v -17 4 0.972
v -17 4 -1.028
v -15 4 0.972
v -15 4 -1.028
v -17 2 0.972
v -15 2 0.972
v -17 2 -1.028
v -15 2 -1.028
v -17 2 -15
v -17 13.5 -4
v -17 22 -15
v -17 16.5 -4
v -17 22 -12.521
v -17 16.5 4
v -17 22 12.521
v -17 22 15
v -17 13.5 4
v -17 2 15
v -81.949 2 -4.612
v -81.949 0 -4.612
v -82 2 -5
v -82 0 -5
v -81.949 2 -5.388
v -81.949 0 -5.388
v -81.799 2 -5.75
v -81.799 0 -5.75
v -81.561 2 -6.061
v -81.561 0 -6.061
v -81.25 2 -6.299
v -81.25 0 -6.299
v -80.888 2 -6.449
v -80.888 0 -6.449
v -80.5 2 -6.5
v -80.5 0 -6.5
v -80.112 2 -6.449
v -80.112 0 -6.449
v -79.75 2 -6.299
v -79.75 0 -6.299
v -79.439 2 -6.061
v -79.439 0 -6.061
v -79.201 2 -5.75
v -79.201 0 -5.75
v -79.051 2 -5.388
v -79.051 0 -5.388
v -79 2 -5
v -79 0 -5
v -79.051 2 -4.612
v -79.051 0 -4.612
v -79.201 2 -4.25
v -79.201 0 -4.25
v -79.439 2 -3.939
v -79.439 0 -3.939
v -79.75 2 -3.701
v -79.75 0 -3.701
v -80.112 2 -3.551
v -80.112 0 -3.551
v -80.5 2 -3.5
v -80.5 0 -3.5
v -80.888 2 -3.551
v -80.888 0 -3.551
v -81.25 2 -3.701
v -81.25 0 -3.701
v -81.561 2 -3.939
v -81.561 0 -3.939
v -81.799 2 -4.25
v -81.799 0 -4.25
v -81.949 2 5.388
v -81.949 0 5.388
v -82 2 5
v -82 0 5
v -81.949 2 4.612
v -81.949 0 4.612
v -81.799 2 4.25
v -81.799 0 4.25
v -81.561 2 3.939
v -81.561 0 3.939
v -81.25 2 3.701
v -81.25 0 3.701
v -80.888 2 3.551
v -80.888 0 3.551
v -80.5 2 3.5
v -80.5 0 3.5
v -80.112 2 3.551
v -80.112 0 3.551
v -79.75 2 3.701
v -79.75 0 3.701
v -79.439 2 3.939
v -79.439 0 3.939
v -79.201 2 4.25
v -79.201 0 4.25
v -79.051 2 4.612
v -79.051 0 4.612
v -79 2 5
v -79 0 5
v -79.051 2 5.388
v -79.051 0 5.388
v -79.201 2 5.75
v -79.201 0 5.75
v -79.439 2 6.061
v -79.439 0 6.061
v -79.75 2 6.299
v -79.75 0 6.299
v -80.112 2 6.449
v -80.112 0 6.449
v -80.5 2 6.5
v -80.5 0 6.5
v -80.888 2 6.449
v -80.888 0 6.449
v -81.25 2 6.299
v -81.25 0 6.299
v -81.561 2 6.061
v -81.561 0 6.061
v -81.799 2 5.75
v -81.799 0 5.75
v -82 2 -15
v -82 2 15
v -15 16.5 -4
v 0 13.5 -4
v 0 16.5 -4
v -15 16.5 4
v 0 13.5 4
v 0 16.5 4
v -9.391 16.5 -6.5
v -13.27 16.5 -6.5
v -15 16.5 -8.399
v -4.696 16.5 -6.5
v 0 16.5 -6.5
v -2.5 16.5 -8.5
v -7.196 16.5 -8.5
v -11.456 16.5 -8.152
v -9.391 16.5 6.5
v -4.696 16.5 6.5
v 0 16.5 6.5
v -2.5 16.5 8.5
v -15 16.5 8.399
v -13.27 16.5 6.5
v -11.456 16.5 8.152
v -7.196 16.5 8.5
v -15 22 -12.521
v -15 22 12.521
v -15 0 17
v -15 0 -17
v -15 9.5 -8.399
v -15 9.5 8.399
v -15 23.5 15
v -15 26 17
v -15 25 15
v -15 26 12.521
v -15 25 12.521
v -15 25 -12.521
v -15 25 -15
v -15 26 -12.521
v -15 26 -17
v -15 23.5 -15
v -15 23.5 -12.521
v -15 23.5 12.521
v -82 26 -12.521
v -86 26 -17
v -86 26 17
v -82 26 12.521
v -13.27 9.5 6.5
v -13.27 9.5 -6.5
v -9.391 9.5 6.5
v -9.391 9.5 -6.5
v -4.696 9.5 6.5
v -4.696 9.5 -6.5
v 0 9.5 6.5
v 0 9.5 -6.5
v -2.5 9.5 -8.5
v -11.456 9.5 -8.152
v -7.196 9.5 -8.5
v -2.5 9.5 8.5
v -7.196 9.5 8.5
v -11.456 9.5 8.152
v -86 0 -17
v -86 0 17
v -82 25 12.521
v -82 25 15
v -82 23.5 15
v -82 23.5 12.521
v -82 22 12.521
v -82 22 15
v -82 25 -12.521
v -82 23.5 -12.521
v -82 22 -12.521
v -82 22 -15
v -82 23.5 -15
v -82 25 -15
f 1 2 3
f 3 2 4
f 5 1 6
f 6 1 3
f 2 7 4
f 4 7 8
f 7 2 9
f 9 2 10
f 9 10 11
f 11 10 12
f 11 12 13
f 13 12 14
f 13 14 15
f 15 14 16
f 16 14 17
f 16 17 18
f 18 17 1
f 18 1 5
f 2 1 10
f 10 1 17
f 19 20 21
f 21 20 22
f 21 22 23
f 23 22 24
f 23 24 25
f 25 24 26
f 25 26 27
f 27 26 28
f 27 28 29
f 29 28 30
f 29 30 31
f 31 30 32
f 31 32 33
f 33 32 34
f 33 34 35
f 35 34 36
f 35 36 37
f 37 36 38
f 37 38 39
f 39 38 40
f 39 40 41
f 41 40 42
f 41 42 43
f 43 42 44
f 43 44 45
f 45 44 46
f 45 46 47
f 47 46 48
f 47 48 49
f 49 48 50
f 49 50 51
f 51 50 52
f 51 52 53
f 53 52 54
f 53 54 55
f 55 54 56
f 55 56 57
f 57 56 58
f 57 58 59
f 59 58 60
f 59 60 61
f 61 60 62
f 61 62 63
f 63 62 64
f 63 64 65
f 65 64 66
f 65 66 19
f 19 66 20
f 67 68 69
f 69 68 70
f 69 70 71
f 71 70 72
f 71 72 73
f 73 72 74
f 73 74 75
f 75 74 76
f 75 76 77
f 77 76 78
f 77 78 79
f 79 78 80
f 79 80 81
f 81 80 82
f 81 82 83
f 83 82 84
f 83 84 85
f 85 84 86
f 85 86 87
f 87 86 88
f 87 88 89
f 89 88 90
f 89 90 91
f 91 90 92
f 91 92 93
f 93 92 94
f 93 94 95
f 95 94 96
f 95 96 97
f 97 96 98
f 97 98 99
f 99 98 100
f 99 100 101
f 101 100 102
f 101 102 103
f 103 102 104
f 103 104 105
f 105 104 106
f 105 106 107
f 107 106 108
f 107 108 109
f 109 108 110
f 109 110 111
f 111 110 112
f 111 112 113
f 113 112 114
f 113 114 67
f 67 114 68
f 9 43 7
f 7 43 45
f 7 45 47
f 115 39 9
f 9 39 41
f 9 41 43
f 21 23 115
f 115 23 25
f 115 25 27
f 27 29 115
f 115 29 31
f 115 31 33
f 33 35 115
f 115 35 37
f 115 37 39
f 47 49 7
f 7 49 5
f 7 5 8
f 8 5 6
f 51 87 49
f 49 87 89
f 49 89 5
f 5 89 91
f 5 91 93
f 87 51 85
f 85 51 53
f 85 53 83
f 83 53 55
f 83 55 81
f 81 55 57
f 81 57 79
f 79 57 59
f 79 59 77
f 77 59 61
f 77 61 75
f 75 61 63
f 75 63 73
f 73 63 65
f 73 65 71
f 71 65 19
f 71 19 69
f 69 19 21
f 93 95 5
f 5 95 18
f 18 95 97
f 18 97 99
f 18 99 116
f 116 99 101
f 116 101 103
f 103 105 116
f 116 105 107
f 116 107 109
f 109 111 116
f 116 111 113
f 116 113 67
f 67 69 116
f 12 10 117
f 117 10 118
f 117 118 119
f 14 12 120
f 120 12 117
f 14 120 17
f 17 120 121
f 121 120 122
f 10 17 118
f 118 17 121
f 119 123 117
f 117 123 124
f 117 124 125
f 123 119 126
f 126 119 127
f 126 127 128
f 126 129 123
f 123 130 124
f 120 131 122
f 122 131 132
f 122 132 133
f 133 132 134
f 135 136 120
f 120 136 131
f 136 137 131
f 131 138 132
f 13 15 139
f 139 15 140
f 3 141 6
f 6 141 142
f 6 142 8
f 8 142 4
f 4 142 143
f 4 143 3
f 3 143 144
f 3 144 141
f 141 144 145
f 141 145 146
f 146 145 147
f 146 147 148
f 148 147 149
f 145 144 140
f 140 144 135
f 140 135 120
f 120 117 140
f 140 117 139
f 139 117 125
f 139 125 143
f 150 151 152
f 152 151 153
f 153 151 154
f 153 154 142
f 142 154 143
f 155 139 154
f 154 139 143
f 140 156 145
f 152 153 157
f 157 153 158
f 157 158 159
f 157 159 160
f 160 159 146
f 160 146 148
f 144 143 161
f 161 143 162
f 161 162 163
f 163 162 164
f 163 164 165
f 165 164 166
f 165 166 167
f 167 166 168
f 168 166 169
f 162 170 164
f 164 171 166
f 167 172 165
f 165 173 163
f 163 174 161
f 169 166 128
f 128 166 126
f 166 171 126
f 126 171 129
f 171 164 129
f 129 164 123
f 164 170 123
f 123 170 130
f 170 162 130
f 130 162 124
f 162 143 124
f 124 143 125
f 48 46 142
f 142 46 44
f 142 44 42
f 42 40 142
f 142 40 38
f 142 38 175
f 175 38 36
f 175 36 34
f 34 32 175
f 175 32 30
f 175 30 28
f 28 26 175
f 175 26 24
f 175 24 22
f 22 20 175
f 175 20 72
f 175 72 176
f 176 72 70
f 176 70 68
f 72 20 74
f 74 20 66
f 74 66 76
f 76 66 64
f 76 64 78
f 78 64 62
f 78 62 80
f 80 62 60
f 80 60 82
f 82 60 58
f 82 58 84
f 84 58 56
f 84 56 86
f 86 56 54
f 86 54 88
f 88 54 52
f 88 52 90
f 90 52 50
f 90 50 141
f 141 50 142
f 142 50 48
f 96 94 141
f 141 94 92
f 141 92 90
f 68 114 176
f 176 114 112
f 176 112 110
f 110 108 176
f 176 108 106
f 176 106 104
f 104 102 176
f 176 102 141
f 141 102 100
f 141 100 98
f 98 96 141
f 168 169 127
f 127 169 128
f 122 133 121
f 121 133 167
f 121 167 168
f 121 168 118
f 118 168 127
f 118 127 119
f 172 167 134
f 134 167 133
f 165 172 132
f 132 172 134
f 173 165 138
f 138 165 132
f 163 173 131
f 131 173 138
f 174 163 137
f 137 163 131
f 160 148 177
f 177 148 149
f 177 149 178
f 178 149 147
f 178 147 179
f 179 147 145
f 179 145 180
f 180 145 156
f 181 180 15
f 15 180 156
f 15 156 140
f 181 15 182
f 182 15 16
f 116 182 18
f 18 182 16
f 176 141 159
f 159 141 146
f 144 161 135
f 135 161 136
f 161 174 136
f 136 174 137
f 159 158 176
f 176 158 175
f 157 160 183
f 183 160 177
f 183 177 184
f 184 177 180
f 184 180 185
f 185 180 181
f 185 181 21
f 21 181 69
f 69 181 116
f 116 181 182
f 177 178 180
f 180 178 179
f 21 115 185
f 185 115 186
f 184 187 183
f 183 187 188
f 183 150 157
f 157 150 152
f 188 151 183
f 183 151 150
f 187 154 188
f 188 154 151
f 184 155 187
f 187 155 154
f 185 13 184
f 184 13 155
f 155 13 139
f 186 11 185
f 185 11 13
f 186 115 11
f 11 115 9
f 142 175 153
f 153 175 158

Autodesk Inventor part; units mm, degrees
ref_plane "YZ Plane" through (0, 0, 0) normal (1, 0, 0) x (0, 1, 0)
ref_plane "XZ Plane" through (0, 0, 0) normal (0, 1, 0) x (-1, 0, 0)
sketch "草图1" plane through (0, 0, 0) normal (0, 1, 0) x (-1, 0, 0)
  line L0 (0, 0) -> (0, -6.5)
  line L1 (0, 0) -> (15, 0)
  line L2 (0, 0) -> (0, -6.5)
  line L3 (0, -6.5) -> (2.5, -8.5)
  line L4 (2.5, -8.5) -> (4.6956, -6.5)
  line L5 (4.6956, -6.5) -> (7.1956, -8.5)
  line L6 (7.1956, -8.5) -> (9.3913, -6.5)
  line L7 (9.3913, -6.5) -> (11.4564, -8.1521)
  line L8 (11.4564, -8.1521) -> (13.2702, -6.5)
  line L9 (13.2702, -6.5) -> (15, -8.399)
  line L10 (15, 0) -> (82, 0)
  line L11 (82, 0) -> (82, -17)
  line L12 (82, -17) -> (15, -17)
  line L13 (15, -17) -> (15, -8.399)
  line L14 (15, -10) -> (15, -8.399)
  line L15 (15, -10) -> (15, -8.399)
  dimension "d1" = 6.5
  dimension "d2" = 15
  dimension "d3" = 99.01
  dimension "d4" = 67
  dimension "d6" = 17
extrude "拉伸1" add sketch "草图1" along normal blind 26
sketch "草图2" plane through (-82, 0, -17) normal (-1, 0, 0) x (0, 0, 1)
  line L0 (4.4791, 22) -> (2, 22)
  line L1 (2, 22) -> (2, 2)
  line L2 (2, 2) -> (17, 2)
  line L3 (4.4791, 23.5) -> (2, 23.5)
  line L4 (2, 23.5) -> (2, 25)
  line L5 (2, 25) -> (4.4791, 25)
  line L6 (0, 0) -> (17, 0) projected
  line L7 (17, 0) -> (17, 26) projected
  line L8 (0, 26) -> (17, 26) projected
  line L9 (0, 0) -> (0, 26) projected
  line L10 (4.4791, 25) -> (4.4791, 26)
  line L11 (4.4791, 23.5) -> (4.4791, 22)
  line L12 (17, 0) -> (17, 26) projected
  line L13 (4.4791, 26) -> (17, 26)
  line L14 (17, 26) -> (17, 2)
  dimension "d9" = 20
  dimension "d11" = 1.5
  dimension "d12" = 1.5
  dimension "d13" = 15
  dimension "d14" = 2
extrude "拉伸2" cut sketch "草图2" against normal blind 65 contours L11 L3 L4 L5 L10 L8 L7 L2 L1 L0
sketch "草图3" plane through (-82, 0, -17) normal (-1, 0, 0) x (0, 0, 1)
  line L0 (0, 0) -> (0, 26) projected
  line L1 (0, 26) -> (17, 26)
  line L2 (17, 26) -> (17, 0)
  line L3 (17, 0) -> (0, 0)
  line L4 (0, 0) -> (0, 26)
extrude "拉伸3" add sketch "草图3" along normal blind 4
mirror "镜像1" about plane through (-82, 0, 0) normal (0, 0, 1) of "拉伸1", "拉伸2", "拉伸3"
sketch "草图4" plane through (0, 26, 0) normal (0, 1, 0) x (1, 0, 0)
  line L0 (-15, -17) -> (-86, -17) projected
  line L1 (-15, -8.399) -> (-15, -17) projected
  line L2 (-13.2702, -6.5) -> (-15, -8.399) projected
  line L3 (-11.4564, -8.1521) -> (-13.2702, -6.5) projected
  line L4 (-9.3913, -6.5) -> (-11.4564, -8.1521) projected
  line L5 (-7.1956, -8.5) -> (-9.3913, -6.5) projected
  line L6 (-4.6956, -6.5) -> (-7.1956, -8.5) projected
  line L7 (-2.5, -8.5) -> (-4.6956, -6.5) projected
  line L8 (0, -6.5) -> (-2.5, -8.5) projected
  line L9 (0, 6.5) -> (0, -6.5) projected
  line L10 (0, 6.5) -> (-2.5, 8.5) projected
  line L11 (-2.5, 8.5) -> (-4.6956, 6.5) projected
  line L12 (-4.6956, 6.5) -> (-7.1956, 8.5) projected
  line L13 (-7.1956, 8.5) -> (-9.3913, 6.5) projected
  line L14 (-9.3913, 6.5) -> (-11.4564, 8.1521) projected
  line L15 (-11.4564, 8.1521) -> (-13.2702, 6.5) projected
  line L16 (-13.2702, 6.5) -> (-15, 8.399) projected
  line L17 (-15, 8.399) -> (-15, 17) projected
  line L18 (-15, 17) -> (-86, 17) projected
  line L19 (-86, 17) -> (-86, -17) projected
  line L20 (-82, 12.5209) -> (-82, -12.5209) projected
  line L21 (-82, 12.5209) -> (-17, 12.5209) projected
  line L22 (-17, 12.5209) -> (-17, -12.5209) projected
  line L23 (-17, -12.5209) -> (-82, -12.5209) projected
  line L24 (-15, -8.399) -> (-15, 8.399)
  point P0 (0, 0)
extrude "拉伸4" cut sketch "草图4" against normal blind 9.5 contours L24 L16 L15 L14 L13 L12 L11 L10 L9 L8 L7 L6 L5 L4 L3 L2
ref_plane "工作平面1" through (0, 13, 0) normal (0, 1, 0) x (1, 0, 0)
mirror "镜像2" about plane through (0, 13, 0) normal (0, 1, 0) of "拉伸4"
sketch "草图5" plane through (-15, 0, -17) normal (1, 0, 0) x (0, 0, -1)
  line L0 (-32, 23.5) -> (-32, 25) projected
  line L1 (-4.4791, 23.5) -> (-2, 23.5) projected
  line L2 (-32, 25) -> (-2, 25)
  line L3 (-2, 25) -> (-2, 23.5)
  line L4 (-2, 23.5) -> (-32, 23.5)
  line L5 (-32, 23.5) -> (-32, 25)
  line L6 (-29.5209, 25) -> (-29.5209, 26) projected
  line L7 (-4.4791, 25) -> (-4.4791, 26) projected
  line L8 (-29.5209, 25) -> (-4.4791, 25)
  line L9 (-4.4791, 25) -> (-4.4791, 26)
  line L10 (-4.4791, 26) -> (-29.5209, 26)
  line L11 (-29.5209, 26) -> (-29.5209, 25)
  line L12 (-32, 22) -> (-29.5209, 22) projected
  line L13 (-29.5209, 22) -> (-4.4791, 22)
  line L14 (-4.4791, 22) -> (-4.4791, 23.5)
  line L15 (-4.4791, 23.5) -> (-29.5209, 23.5)
  line L16 (-29.5209, 23.5) -> (-29.5209, 22)
  point P0 (-17, 0)
extrude "拉伸5" cut sketch "草图5" against normal up to surface (2 mm away) from surface at 0
sketch "草图6" plane through (0, 16.5, 6.5) normal (1, 0, 0) x (0, 0, -1)
  line L0 (0, -7) -> (13, -7) projected
  line L1 (13, -7) -> (13, 0) projected
  line L2 (13, 0) -> (0, 0) projected
  line L3 (0, -7) -> (0, 0) projected
  line L4 (0, -3) -> (13, -3) projected
  line L5 (2.5, 0) -> (10.5, 0)
  line L6 (10.5, 0) -> (10.5, -3)
  line L7 (10.5, -3) -> (2.5, -3)
  line L8 (2.5, -3) -> (2.5, 0)
  line L9 (0, -7) -> (0, 0) projected
  line L10 (6.5, -3) -> (6.5, 0)
  line L11 (13, 0) -> (0, 0) projected
  dimension "d23" = 8
  dimension "d24" = 3
extrude "拉伸6" cut sketch "草图6" against normal blind 68.25 contours L8 L2 L10 L4 | L4 L10 L2 L6
sketch "草图7" plane through (0, 0, 0) normal (0, -1, 0) x (1, 0, 0)
  line L0 (-82, 15) -> (-82, -15) projected
  line L1 (-82, -15) -> (-17, -15) projected
  line L2 (-82, 15) -> (-17, 15) projected
  circle A0 centre (-80.5, -5) radius 1.5
  circle A1 centre (-80.5, 5) radius 1.5
  line L3 (-103.2, 0) -> (17.2, 0) projected
  point P0 (0, 0)
  dimension "d27" = 3
  dimension "d28" = 3
  dimension "d29" = 10
  dimension "d30" = 1.5
extrude "拉伸7" cut sketch "草图7" against normal blind 9.25
sketch "草图8" plane through (-15, 0, -17) normal (1, 0, 0) x (0, 0, -1)
  line L0 (-17.9721, 4) -> (-15.9721, 4)
  line L1 (-15.9721, 4) -> (-15.9721, 2)
  line L2 (-15.9721, 2) -> (-17.9721, 2)
  line L3 (-17.9721, 2) -> (-17.9721, 4)
  line L4 (-16.9721, 7.1271) -> (-16.9721, -1.5009)
  line L5 (0, 0) -> (-34, 0) projected
  point P0 (-17, 0)
  dimension "d33" = 2
  dimension "d34" = 2
  dimension "d35" = 2
extrude "拉伸8" cut sketch "草图8" against normal blind 5
properties part number "装置容器" material "银"
